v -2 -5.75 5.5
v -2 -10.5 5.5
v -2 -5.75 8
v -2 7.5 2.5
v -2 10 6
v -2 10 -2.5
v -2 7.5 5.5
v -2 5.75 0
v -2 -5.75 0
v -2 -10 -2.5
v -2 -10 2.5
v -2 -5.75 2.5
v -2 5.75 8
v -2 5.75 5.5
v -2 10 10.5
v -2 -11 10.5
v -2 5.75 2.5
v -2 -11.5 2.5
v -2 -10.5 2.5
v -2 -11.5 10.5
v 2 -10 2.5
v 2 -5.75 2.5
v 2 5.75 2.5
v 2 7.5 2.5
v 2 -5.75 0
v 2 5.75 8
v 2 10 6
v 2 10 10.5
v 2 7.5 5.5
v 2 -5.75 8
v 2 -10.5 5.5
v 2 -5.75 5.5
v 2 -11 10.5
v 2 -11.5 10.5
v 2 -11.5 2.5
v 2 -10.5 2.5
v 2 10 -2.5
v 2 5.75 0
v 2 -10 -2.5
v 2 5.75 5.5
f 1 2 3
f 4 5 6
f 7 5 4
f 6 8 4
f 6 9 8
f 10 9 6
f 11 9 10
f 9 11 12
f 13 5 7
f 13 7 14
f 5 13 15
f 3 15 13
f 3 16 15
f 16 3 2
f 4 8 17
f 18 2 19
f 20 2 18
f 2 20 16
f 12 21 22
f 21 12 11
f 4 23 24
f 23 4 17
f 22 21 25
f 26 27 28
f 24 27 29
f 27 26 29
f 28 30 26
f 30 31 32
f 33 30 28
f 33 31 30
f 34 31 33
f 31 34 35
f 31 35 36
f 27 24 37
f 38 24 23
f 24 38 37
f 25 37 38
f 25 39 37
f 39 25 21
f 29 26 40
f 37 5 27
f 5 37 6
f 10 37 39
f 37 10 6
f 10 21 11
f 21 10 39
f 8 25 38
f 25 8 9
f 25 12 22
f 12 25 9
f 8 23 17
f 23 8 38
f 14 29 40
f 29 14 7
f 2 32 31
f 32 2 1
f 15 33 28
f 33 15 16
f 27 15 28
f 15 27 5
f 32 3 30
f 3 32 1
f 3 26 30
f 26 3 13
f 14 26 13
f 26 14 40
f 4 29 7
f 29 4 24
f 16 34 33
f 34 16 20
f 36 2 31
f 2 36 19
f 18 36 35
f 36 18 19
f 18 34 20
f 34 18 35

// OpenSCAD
difference() {
    // Bottom bracket base
    scale([4,20,5]) cube(1,1,1,center=true);
    
    // PCB craddle
    translate([0,0,1.25]) scale([4,11.5,2.5]) cube(1,1,1,center=true);
}

translate([0,0,8]) rotate([180,0,0]) difference() {
    // Top bracket base
    translate([0,.5,0]) scale([4,21,5]) cube(1,1,1,center=true);
    
    // PCB craddle
    translate([0,0,1.25]) scale([4,11.5,2.5]) cube(1,1,1,center=true);
}

// PCB bumper
translate([0,8.75,4]) scale([4,2.5,4]) cube(1,1,1,center=true);

// Clip lock
translate([0,-11,6.5]) scale([4,1,8]) cube(1,1,1,center=true);
